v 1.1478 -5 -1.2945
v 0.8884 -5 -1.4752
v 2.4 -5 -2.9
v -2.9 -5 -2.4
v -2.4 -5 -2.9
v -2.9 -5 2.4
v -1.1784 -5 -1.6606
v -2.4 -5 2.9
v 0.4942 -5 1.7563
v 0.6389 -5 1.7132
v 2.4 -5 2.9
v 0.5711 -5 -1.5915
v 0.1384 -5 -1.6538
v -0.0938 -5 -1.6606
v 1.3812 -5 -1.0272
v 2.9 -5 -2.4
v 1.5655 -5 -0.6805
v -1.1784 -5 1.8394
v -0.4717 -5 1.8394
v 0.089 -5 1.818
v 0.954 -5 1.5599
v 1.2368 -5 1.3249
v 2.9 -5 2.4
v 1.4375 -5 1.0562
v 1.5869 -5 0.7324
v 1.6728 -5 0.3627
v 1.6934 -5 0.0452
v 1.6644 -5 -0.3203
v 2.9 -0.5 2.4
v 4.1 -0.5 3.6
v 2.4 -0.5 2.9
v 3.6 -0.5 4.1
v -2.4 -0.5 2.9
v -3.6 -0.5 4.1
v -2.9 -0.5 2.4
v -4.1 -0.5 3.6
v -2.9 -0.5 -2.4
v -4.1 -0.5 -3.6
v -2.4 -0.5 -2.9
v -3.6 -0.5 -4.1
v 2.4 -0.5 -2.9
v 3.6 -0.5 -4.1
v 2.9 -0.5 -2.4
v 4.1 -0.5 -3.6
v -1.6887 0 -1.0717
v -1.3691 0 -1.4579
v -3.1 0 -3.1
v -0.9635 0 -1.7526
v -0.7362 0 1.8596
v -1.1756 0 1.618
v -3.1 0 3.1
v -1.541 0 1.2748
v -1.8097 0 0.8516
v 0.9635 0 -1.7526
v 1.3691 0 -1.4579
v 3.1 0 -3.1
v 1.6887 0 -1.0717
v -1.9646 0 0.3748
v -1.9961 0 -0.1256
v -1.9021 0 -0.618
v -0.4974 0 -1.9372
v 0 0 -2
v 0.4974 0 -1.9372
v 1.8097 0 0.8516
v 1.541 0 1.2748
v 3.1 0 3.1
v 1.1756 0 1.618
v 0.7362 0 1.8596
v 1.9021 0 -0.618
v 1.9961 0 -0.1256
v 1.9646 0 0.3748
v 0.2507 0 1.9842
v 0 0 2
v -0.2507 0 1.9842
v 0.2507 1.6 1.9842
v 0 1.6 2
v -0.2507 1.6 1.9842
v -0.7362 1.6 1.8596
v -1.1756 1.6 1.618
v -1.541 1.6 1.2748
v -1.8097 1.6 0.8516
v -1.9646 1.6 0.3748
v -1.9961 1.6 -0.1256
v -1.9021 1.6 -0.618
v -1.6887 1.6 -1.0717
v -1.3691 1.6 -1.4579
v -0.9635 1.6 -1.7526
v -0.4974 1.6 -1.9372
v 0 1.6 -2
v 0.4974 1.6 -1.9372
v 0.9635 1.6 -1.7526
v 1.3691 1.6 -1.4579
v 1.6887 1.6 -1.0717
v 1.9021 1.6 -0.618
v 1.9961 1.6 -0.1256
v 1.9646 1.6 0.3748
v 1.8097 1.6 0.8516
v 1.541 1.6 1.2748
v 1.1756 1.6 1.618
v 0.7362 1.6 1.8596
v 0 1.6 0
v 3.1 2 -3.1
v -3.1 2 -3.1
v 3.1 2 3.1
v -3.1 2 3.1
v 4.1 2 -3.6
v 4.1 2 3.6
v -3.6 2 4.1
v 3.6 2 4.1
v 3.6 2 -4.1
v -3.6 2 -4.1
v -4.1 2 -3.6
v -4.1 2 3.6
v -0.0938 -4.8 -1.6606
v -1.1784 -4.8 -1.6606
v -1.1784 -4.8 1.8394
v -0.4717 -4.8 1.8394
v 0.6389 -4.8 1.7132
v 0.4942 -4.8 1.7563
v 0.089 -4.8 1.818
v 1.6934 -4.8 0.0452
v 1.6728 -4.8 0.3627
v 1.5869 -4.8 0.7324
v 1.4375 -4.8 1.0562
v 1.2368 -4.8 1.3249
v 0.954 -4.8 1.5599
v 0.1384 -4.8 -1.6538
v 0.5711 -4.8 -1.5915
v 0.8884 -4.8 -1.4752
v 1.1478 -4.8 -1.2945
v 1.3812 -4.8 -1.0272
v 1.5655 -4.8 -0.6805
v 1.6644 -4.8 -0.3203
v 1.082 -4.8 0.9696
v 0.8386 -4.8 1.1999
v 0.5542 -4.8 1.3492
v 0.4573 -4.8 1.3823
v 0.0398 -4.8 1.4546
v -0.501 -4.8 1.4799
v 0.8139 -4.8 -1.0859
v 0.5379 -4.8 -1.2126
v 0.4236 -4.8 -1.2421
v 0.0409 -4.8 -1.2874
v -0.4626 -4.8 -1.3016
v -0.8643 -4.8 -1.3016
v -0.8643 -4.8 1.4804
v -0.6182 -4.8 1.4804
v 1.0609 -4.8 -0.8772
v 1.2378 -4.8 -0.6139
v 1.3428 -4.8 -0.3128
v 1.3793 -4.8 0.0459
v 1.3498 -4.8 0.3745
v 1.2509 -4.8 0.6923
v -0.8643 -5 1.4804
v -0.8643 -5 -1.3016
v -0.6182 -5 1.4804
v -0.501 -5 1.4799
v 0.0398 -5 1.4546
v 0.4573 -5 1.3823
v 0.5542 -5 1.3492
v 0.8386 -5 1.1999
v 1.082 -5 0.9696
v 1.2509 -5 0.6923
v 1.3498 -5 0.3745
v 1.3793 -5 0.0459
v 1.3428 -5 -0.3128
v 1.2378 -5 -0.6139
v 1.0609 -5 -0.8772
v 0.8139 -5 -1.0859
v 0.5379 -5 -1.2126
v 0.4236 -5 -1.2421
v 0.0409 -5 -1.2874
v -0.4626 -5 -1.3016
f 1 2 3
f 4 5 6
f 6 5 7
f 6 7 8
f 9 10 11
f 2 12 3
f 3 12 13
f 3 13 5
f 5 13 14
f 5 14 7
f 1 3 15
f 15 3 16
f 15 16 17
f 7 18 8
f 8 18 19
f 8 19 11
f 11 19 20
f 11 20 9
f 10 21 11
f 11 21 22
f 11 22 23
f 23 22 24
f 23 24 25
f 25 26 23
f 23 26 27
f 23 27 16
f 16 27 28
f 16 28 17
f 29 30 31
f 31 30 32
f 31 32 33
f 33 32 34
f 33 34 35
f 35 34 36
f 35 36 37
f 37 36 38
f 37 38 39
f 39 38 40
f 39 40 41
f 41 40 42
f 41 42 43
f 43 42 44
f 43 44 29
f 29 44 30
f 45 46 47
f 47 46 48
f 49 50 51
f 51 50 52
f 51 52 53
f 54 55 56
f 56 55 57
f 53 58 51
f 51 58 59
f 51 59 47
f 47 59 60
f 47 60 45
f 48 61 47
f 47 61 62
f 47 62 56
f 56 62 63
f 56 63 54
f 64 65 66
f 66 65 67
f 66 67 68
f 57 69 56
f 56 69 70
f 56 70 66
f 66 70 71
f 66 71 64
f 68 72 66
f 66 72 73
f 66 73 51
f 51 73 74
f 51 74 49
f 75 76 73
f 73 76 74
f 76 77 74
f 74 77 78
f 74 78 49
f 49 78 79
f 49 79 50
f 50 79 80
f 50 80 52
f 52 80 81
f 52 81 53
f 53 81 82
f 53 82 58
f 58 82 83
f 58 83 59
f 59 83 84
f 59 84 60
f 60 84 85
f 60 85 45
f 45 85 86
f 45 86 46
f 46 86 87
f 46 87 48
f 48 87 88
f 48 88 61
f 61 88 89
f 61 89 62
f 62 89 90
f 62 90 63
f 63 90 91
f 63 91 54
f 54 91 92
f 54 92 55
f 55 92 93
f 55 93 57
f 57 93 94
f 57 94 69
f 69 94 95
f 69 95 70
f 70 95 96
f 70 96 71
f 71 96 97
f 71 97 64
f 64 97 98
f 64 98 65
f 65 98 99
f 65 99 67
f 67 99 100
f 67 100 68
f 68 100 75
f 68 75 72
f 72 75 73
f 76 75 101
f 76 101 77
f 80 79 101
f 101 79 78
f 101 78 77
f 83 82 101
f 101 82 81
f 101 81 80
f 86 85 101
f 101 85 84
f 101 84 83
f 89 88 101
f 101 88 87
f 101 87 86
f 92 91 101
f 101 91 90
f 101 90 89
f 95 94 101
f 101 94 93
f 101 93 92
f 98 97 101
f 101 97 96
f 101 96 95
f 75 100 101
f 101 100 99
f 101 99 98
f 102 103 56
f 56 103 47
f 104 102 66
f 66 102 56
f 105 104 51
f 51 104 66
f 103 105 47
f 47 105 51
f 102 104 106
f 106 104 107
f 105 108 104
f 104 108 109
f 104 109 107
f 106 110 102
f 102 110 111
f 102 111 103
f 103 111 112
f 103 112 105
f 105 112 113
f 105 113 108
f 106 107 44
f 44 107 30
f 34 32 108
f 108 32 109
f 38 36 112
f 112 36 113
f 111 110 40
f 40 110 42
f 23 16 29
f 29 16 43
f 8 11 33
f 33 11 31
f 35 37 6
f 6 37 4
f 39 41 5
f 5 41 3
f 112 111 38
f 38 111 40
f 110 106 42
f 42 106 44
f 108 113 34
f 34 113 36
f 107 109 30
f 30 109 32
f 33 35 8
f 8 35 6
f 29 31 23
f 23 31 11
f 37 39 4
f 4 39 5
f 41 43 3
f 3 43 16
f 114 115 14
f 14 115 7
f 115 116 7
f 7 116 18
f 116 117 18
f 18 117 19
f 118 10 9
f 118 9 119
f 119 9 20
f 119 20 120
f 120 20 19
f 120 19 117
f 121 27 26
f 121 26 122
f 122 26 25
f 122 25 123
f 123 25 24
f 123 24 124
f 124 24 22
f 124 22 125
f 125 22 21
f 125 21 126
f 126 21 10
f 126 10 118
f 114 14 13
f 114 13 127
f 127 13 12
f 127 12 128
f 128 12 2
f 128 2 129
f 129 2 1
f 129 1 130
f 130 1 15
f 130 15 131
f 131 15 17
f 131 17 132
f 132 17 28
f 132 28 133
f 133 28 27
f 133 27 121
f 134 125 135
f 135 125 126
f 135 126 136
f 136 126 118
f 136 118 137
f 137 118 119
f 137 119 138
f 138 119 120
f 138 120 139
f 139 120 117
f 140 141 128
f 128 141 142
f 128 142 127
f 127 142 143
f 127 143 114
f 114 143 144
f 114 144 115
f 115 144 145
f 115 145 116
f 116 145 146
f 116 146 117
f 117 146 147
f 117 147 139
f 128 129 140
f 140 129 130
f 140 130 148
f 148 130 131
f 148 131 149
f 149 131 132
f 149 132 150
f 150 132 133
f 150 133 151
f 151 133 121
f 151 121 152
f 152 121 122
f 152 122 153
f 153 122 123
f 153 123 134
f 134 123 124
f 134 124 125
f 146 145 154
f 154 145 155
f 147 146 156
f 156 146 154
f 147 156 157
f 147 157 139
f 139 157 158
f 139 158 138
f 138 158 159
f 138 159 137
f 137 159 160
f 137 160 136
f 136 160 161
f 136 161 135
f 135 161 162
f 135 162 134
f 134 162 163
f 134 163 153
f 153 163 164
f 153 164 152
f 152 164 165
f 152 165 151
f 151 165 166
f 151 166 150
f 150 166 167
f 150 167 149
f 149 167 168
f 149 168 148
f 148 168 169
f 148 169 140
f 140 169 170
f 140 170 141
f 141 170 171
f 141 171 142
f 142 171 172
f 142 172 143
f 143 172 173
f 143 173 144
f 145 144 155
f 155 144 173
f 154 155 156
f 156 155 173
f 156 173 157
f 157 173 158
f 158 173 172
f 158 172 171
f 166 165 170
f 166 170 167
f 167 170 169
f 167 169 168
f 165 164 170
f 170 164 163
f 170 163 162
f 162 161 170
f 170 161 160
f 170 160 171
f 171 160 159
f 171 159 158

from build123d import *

# Parameters (mm, degrees)
SKETCH1_R           = 2
BOSS_EXTRUDE1_DEPTH = 1.6
SKETCH1_3_W         = 8.2
SKETCH1_3_H         = 8.2
SKETCH1_3_W_2       = 6.2
SKETCH1_3_H_2       = 6.2
BOSS_EXTRUDE2_DEPTH = 2
SKETCH1_4_W         = 8.2
SKETCH1_4_H         = 8.2
BOSS_EXTRUDE3_DEPTH = 0.5
SKETCH3_W           = 5.8
SKETCH3_H           = 5.8
BOSS_EXTRUDE4_DEPTH = 4.5
CHAMFER1_SIZE       = 0.5
CUT_EXTRUDE1_DEPTH  = 0.2


with BuildPart() as part:
    # Sketch1 → Boss-Extrude1 (new body)
    with BuildSketch(Plane(origin=(0, 0, 0), x_dir=(1, 0, 0), z_dir=(0, 1, 0))):
        Circle(SKETCH1_R)
    extrude(amount=BOSS_EXTRUDE1_DEPTH)



with BuildPart() as body_2:
    # Sketch1<3> → Boss-Extrude2 (new body)
    with BuildSketch(Plane(origin=(0, 0, 0), x_dir=(1, 0, 0), z_dir=(0, 1, 0))):
        Rectangle(SKETCH1_3_W, SKETCH1_3_H)
        Rectangle(SKETCH1_3_W_2, SKETCH1_3_H_2, mode=Mode.SUBTRACT)
    extrude(amount=BOSS_EXTRUDE2_DEPTH)


with BuildPart() as part_1:
    add(part.part)

    add(body_2.part)  # Boss-Extrude3 merges body 2
    # Sketch1<4> → Boss-Extrude3 (add)
    with BuildSketch(Plane(origin=(0, 0, 0), x_dir=(1, 0, 0), z_dir=(0, 1, 0))):
        Rectangle(SKETCH1_4_W, SKETCH1_4_H)
    extrude(amount=-BOSS_EXTRUDE3_DEPTH)

    # Sketch3 → Boss-Extrude4 (add)
    with BuildSketch(Plane.XZ.offset(0.5)):
        Rectangle(SKETCH3_W, SKETCH3_H)
    extrude(amount=BOSS_EXTRUDE4_DEPTH)

    # Chamfer1
    chamfer1_edges = [part_1.edges().sort_by_distance(p)[0] for p in [
        (-4.1, 0.75, -4.1),
        (4.1, 0.75, -4.1),
        (-4.1, 0.75, 4.1),
        (4.1, 0.75, 4.1),
        (-2.9, -2.75, 2.9),
        (2.9, -2.75, 2.9),
        (-2.9, -2.75, -2.9),
        (2.9, -2.75, -2.9),
    ]]
    chamfer(chamfer1_edges, length=CHAMFER1_SIZE)

    # Sketch4 → Cut-Extrude1 (cut)
    with BuildSketch(Plane.XZ.offset(5)):
        with BuildLine():
            Line((-1.178429818, -1.660582309), (-1.178429818, 1.839417691))
            Line((-1.178429818, 1.839417691), (-0.471699048, 1.839417691))
            add(Edge.make_bspline(
                [(-0.471699048, 1.839417691), (-0.41023006, 1.838975121), (-0.291472295, 1.838120078), (-0.119859847, 1.832698686), (0.038923915, 1.823108221), (0.184356774, 1.809138694), (0.316837986, 1.791985661), (0.435996594, 1.770485257), (0.542448737, 1.745097086), (0.607918178, 1.723451636), (0.638877875, 1.713215767)],
                knots=[0, 0, 0, 0, 1.314313732, 2.53924729, 3.670748893, 4.714932338, 5.66265055, 6.526160246, 7.303039223, 8, 8, 8, 8], degree=3))
            add(Edge.make_bspline(
                [(0.638877875, 1.713215767), (0.679372614, 1.697785062), (0.759443806, 1.667273568), (0.873450929, 1.609717266), (0.980776292, 1.544504165), (1.081995437, 1.471548302), (1.174796263, 1.388783953), (1.26280416, 1.299726868), (1.342418884, 1.201138528), (1.41532718, 1.09506354), (1.481062839, 0.982751487), (1.538201997, 0.864416379), (1.58565599, 0.740659171), (1.625049217, 0.611824023), (1.656095674, 0.477627645), (1.677277606, 0.337913779), (1.691248596, 0.193234589), (1.692652647, 0.095060126), (1.693365054, 0.045247017)],
                knots=[0, 0, 0, 0, 0.984719456, 1.947108742, 2.898477687, 3.838006223, 4.779231079, 5.722358779, 6.681677486, 7.655904652, 8.64651281, 9.637519902, 10.640069247, 11.656948941, 12.698408672, 13.768548281, 14.867775369, 16, 16, 16, 16], degree=3))
            add(Edge.make_bspline(
                [(1.693365054, 0.045247017), (1.692736087, 0.001985779), (1.691496641, -0.08326501), (1.680367325, -0.208905906), (1.664191005, -0.330819477), (1.639146807, -0.448425177), (1.608744293, -0.562753395), (1.569780142, -0.672585639), (1.525144646, -0.778929449), (1.473094767, -0.880346924), (1.415953382, -0.976430297), (1.354631639, -1.067005825), (1.289194944, -1.150781047), (1.219019311, -1.228009659), (1.145011594, -1.298575237), (1.066687264, -1.363067252), (0.983844213, -1.420223807), (0.89685349, -1.472290916), (0.803177361, -1.517711271), (0.701041495, -1.556141281), (0.590010317, -1.587987896), (0.47035636, -1.614558792), (0.341872882, -1.635636095), (0.204433916, -1.649762487), (0.058250627, -1.65931542), (-0.042128638, -1.660151813), (-0.093794401, -1.660582309)],
                knots=[0, 0, 0, 0, 1.105936401, 2.179363191, 3.223086493, 4.248585256, 5.251745608, 6.245858792, 7.225916811, 8.198733463, 9.158002045, 10.082870192, 10.993790845, 11.873723703, 12.748670949, 13.606408763, 14.465103618, 15.319838547, 16.196477973, 17.123216899, 18.106603292, 19.147568657, 20.255746949, 21.433717677, 22.679120308, 24, 24, 24, 24], degree=3))
            Line((-0.093794401, -1.660582309), (-1.178429818, -1.660582309))
        make_face()
        with BuildLine():
            Line((-0.864327254, -1.30160795), (-0.462584465, -1.30160795))
            add(Edge.make_bspline(
                [(-0.462584465, -1.30160795), (-0.404856094, -1.301359854), (-0.293823296, -1.300882674), (-0.134165299, -1.296695471), (0.011714098, -1.289853533), (0.143835607, -1.280278455), (0.262124632, -1.26760984), (0.366828381, -1.253484938), (0.45760364, -1.235887487), (0.512533077, -1.219936527), (0.537916336, -1.212565483)],
                knots=[0, 0, 0, 0, 1.375205317, 2.645023457, 3.804390687, 4.853969522, 5.800190428, 6.637939096, 7.370582563, 8, 8, 8, 8], degree=3))
            add(Edge.make_bspline(
                [(0.537916336, -1.212565483), (0.569864698, -1.201313924), (0.632998337, -1.179079551), (0.723879422, -1.13852189), (0.808636426, -1.09047982), (0.888746452, -1.037077546), (0.963073107, -0.976431544), (1.032497223, -0.909860555), (1.096879025, -0.83702578), (1.155553333, -0.758017619), (1.208061637, -0.673327823), (1.253532866, -0.583788989), (1.293384398, -0.490382179), (1.32466299, -0.39167302), (1.349178575, -0.288543962), (1.366543263, -0.180987749), (1.377357987, -0.069024467), (1.378619435, 0.007127657), (1.37926249, 0.045948139)],
                knots=[0, 0, 0, 0, 0.998632004, 1.973411704, 2.929992603, 3.868527914, 4.809262121, 5.754881198, 6.702106254, 7.672490631, 8.653608572, 9.636854334, 10.631411391, 11.644891563, 12.686317036, 13.754757253, 14.855430412, 16, 16, 16, 16], degree=3))
            add(Edge.make_bspline(
                [(1.37926249, 0.045948139), (1.378749203, 0.08688162), (1.377740845, 0.167295804), (1.365066535, 0.285286499), (1.346544979, 0.39876715), (1.319761293, 0.507745345), (1.285630414, 0.612433697), (1.243035773, 0.712253207), (1.194369153, 0.808258076), (1.136465816, 0.898232442), (1.073050223, 0.983325551), (1.002672344, 1.061280467), (0.926450305, 1.132274767), (0.845215456, 1.19741408), (0.756678357, 1.254077756), (0.662924666, 1.304764437), (0.562578995, 1.347780328), (0.492766299, 1.370659191), (0.45728733, 1.38228628)],
                knots=[0, 0, 0, 0, 1.122418816, 2.205001699, 3.251619955, 4.274784885, 5.280384055, 6.268708349, 7.249350384, 8.229342522, 9.199999885, 10.157847722, 11.105861043, 12.055065948, 13.010012805, 13.98527497, 14.976112212, 16, 16, 16, 16], degree=3))
            add(Edge.make_bspline(
                [(0.45728733, 1.38228628), (0.427936183, 1.390402708), (0.365527593, 1.407660461), (0.263688129, 1.426485833), (0.14907298, 1.443090332), (0.021173279, 1.457148372), (-0.11986518, 1.467235693), (-0.274150868, 1.474807008), (-0.441750473, 1.47991364), (-0.557933007, 1.480262347), (-0.618233504, 1.480443332)],
                knots=[0, 0, 0, 0, 0.674548936, 1.434276114, 2.292660221, 3.240891867, 4.284742987, 5.42552168, 6.663806718, 8, 8, 8, 8], degree=3))
            Line((-0.618233504, 1.480443332), (-0.864327254, 1.480443332))
            Line((-0.864327254, 1.480443332), (-0.864327254, -1.30160795))
        make_face(mode=Mode.SUBTRACT)
    extrude(amount=-CUT_EXTRUDE1_DEPTH, mode=Mode.SUBTRACT)


solid = part_1.part
